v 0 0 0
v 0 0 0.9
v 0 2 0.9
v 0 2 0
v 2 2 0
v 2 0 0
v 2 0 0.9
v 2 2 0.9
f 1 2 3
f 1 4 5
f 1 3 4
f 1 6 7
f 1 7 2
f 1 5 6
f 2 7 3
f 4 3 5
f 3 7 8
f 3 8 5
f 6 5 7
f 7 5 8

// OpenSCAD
/* Warning, this is a very basic generator with a lot of approximation 
input data : [VDFN, 6XW, 2x2x0.9mm, 8, , B, C04-00637B]
generated by com.zoubworld.electronics.cad.model3d.Basic
Date : Sun Feb 15 10:50:49 CET 2026
*/

//body
color("black")
translate([0,0,0])
cube([2.0,2.0,0.9], center=false);
